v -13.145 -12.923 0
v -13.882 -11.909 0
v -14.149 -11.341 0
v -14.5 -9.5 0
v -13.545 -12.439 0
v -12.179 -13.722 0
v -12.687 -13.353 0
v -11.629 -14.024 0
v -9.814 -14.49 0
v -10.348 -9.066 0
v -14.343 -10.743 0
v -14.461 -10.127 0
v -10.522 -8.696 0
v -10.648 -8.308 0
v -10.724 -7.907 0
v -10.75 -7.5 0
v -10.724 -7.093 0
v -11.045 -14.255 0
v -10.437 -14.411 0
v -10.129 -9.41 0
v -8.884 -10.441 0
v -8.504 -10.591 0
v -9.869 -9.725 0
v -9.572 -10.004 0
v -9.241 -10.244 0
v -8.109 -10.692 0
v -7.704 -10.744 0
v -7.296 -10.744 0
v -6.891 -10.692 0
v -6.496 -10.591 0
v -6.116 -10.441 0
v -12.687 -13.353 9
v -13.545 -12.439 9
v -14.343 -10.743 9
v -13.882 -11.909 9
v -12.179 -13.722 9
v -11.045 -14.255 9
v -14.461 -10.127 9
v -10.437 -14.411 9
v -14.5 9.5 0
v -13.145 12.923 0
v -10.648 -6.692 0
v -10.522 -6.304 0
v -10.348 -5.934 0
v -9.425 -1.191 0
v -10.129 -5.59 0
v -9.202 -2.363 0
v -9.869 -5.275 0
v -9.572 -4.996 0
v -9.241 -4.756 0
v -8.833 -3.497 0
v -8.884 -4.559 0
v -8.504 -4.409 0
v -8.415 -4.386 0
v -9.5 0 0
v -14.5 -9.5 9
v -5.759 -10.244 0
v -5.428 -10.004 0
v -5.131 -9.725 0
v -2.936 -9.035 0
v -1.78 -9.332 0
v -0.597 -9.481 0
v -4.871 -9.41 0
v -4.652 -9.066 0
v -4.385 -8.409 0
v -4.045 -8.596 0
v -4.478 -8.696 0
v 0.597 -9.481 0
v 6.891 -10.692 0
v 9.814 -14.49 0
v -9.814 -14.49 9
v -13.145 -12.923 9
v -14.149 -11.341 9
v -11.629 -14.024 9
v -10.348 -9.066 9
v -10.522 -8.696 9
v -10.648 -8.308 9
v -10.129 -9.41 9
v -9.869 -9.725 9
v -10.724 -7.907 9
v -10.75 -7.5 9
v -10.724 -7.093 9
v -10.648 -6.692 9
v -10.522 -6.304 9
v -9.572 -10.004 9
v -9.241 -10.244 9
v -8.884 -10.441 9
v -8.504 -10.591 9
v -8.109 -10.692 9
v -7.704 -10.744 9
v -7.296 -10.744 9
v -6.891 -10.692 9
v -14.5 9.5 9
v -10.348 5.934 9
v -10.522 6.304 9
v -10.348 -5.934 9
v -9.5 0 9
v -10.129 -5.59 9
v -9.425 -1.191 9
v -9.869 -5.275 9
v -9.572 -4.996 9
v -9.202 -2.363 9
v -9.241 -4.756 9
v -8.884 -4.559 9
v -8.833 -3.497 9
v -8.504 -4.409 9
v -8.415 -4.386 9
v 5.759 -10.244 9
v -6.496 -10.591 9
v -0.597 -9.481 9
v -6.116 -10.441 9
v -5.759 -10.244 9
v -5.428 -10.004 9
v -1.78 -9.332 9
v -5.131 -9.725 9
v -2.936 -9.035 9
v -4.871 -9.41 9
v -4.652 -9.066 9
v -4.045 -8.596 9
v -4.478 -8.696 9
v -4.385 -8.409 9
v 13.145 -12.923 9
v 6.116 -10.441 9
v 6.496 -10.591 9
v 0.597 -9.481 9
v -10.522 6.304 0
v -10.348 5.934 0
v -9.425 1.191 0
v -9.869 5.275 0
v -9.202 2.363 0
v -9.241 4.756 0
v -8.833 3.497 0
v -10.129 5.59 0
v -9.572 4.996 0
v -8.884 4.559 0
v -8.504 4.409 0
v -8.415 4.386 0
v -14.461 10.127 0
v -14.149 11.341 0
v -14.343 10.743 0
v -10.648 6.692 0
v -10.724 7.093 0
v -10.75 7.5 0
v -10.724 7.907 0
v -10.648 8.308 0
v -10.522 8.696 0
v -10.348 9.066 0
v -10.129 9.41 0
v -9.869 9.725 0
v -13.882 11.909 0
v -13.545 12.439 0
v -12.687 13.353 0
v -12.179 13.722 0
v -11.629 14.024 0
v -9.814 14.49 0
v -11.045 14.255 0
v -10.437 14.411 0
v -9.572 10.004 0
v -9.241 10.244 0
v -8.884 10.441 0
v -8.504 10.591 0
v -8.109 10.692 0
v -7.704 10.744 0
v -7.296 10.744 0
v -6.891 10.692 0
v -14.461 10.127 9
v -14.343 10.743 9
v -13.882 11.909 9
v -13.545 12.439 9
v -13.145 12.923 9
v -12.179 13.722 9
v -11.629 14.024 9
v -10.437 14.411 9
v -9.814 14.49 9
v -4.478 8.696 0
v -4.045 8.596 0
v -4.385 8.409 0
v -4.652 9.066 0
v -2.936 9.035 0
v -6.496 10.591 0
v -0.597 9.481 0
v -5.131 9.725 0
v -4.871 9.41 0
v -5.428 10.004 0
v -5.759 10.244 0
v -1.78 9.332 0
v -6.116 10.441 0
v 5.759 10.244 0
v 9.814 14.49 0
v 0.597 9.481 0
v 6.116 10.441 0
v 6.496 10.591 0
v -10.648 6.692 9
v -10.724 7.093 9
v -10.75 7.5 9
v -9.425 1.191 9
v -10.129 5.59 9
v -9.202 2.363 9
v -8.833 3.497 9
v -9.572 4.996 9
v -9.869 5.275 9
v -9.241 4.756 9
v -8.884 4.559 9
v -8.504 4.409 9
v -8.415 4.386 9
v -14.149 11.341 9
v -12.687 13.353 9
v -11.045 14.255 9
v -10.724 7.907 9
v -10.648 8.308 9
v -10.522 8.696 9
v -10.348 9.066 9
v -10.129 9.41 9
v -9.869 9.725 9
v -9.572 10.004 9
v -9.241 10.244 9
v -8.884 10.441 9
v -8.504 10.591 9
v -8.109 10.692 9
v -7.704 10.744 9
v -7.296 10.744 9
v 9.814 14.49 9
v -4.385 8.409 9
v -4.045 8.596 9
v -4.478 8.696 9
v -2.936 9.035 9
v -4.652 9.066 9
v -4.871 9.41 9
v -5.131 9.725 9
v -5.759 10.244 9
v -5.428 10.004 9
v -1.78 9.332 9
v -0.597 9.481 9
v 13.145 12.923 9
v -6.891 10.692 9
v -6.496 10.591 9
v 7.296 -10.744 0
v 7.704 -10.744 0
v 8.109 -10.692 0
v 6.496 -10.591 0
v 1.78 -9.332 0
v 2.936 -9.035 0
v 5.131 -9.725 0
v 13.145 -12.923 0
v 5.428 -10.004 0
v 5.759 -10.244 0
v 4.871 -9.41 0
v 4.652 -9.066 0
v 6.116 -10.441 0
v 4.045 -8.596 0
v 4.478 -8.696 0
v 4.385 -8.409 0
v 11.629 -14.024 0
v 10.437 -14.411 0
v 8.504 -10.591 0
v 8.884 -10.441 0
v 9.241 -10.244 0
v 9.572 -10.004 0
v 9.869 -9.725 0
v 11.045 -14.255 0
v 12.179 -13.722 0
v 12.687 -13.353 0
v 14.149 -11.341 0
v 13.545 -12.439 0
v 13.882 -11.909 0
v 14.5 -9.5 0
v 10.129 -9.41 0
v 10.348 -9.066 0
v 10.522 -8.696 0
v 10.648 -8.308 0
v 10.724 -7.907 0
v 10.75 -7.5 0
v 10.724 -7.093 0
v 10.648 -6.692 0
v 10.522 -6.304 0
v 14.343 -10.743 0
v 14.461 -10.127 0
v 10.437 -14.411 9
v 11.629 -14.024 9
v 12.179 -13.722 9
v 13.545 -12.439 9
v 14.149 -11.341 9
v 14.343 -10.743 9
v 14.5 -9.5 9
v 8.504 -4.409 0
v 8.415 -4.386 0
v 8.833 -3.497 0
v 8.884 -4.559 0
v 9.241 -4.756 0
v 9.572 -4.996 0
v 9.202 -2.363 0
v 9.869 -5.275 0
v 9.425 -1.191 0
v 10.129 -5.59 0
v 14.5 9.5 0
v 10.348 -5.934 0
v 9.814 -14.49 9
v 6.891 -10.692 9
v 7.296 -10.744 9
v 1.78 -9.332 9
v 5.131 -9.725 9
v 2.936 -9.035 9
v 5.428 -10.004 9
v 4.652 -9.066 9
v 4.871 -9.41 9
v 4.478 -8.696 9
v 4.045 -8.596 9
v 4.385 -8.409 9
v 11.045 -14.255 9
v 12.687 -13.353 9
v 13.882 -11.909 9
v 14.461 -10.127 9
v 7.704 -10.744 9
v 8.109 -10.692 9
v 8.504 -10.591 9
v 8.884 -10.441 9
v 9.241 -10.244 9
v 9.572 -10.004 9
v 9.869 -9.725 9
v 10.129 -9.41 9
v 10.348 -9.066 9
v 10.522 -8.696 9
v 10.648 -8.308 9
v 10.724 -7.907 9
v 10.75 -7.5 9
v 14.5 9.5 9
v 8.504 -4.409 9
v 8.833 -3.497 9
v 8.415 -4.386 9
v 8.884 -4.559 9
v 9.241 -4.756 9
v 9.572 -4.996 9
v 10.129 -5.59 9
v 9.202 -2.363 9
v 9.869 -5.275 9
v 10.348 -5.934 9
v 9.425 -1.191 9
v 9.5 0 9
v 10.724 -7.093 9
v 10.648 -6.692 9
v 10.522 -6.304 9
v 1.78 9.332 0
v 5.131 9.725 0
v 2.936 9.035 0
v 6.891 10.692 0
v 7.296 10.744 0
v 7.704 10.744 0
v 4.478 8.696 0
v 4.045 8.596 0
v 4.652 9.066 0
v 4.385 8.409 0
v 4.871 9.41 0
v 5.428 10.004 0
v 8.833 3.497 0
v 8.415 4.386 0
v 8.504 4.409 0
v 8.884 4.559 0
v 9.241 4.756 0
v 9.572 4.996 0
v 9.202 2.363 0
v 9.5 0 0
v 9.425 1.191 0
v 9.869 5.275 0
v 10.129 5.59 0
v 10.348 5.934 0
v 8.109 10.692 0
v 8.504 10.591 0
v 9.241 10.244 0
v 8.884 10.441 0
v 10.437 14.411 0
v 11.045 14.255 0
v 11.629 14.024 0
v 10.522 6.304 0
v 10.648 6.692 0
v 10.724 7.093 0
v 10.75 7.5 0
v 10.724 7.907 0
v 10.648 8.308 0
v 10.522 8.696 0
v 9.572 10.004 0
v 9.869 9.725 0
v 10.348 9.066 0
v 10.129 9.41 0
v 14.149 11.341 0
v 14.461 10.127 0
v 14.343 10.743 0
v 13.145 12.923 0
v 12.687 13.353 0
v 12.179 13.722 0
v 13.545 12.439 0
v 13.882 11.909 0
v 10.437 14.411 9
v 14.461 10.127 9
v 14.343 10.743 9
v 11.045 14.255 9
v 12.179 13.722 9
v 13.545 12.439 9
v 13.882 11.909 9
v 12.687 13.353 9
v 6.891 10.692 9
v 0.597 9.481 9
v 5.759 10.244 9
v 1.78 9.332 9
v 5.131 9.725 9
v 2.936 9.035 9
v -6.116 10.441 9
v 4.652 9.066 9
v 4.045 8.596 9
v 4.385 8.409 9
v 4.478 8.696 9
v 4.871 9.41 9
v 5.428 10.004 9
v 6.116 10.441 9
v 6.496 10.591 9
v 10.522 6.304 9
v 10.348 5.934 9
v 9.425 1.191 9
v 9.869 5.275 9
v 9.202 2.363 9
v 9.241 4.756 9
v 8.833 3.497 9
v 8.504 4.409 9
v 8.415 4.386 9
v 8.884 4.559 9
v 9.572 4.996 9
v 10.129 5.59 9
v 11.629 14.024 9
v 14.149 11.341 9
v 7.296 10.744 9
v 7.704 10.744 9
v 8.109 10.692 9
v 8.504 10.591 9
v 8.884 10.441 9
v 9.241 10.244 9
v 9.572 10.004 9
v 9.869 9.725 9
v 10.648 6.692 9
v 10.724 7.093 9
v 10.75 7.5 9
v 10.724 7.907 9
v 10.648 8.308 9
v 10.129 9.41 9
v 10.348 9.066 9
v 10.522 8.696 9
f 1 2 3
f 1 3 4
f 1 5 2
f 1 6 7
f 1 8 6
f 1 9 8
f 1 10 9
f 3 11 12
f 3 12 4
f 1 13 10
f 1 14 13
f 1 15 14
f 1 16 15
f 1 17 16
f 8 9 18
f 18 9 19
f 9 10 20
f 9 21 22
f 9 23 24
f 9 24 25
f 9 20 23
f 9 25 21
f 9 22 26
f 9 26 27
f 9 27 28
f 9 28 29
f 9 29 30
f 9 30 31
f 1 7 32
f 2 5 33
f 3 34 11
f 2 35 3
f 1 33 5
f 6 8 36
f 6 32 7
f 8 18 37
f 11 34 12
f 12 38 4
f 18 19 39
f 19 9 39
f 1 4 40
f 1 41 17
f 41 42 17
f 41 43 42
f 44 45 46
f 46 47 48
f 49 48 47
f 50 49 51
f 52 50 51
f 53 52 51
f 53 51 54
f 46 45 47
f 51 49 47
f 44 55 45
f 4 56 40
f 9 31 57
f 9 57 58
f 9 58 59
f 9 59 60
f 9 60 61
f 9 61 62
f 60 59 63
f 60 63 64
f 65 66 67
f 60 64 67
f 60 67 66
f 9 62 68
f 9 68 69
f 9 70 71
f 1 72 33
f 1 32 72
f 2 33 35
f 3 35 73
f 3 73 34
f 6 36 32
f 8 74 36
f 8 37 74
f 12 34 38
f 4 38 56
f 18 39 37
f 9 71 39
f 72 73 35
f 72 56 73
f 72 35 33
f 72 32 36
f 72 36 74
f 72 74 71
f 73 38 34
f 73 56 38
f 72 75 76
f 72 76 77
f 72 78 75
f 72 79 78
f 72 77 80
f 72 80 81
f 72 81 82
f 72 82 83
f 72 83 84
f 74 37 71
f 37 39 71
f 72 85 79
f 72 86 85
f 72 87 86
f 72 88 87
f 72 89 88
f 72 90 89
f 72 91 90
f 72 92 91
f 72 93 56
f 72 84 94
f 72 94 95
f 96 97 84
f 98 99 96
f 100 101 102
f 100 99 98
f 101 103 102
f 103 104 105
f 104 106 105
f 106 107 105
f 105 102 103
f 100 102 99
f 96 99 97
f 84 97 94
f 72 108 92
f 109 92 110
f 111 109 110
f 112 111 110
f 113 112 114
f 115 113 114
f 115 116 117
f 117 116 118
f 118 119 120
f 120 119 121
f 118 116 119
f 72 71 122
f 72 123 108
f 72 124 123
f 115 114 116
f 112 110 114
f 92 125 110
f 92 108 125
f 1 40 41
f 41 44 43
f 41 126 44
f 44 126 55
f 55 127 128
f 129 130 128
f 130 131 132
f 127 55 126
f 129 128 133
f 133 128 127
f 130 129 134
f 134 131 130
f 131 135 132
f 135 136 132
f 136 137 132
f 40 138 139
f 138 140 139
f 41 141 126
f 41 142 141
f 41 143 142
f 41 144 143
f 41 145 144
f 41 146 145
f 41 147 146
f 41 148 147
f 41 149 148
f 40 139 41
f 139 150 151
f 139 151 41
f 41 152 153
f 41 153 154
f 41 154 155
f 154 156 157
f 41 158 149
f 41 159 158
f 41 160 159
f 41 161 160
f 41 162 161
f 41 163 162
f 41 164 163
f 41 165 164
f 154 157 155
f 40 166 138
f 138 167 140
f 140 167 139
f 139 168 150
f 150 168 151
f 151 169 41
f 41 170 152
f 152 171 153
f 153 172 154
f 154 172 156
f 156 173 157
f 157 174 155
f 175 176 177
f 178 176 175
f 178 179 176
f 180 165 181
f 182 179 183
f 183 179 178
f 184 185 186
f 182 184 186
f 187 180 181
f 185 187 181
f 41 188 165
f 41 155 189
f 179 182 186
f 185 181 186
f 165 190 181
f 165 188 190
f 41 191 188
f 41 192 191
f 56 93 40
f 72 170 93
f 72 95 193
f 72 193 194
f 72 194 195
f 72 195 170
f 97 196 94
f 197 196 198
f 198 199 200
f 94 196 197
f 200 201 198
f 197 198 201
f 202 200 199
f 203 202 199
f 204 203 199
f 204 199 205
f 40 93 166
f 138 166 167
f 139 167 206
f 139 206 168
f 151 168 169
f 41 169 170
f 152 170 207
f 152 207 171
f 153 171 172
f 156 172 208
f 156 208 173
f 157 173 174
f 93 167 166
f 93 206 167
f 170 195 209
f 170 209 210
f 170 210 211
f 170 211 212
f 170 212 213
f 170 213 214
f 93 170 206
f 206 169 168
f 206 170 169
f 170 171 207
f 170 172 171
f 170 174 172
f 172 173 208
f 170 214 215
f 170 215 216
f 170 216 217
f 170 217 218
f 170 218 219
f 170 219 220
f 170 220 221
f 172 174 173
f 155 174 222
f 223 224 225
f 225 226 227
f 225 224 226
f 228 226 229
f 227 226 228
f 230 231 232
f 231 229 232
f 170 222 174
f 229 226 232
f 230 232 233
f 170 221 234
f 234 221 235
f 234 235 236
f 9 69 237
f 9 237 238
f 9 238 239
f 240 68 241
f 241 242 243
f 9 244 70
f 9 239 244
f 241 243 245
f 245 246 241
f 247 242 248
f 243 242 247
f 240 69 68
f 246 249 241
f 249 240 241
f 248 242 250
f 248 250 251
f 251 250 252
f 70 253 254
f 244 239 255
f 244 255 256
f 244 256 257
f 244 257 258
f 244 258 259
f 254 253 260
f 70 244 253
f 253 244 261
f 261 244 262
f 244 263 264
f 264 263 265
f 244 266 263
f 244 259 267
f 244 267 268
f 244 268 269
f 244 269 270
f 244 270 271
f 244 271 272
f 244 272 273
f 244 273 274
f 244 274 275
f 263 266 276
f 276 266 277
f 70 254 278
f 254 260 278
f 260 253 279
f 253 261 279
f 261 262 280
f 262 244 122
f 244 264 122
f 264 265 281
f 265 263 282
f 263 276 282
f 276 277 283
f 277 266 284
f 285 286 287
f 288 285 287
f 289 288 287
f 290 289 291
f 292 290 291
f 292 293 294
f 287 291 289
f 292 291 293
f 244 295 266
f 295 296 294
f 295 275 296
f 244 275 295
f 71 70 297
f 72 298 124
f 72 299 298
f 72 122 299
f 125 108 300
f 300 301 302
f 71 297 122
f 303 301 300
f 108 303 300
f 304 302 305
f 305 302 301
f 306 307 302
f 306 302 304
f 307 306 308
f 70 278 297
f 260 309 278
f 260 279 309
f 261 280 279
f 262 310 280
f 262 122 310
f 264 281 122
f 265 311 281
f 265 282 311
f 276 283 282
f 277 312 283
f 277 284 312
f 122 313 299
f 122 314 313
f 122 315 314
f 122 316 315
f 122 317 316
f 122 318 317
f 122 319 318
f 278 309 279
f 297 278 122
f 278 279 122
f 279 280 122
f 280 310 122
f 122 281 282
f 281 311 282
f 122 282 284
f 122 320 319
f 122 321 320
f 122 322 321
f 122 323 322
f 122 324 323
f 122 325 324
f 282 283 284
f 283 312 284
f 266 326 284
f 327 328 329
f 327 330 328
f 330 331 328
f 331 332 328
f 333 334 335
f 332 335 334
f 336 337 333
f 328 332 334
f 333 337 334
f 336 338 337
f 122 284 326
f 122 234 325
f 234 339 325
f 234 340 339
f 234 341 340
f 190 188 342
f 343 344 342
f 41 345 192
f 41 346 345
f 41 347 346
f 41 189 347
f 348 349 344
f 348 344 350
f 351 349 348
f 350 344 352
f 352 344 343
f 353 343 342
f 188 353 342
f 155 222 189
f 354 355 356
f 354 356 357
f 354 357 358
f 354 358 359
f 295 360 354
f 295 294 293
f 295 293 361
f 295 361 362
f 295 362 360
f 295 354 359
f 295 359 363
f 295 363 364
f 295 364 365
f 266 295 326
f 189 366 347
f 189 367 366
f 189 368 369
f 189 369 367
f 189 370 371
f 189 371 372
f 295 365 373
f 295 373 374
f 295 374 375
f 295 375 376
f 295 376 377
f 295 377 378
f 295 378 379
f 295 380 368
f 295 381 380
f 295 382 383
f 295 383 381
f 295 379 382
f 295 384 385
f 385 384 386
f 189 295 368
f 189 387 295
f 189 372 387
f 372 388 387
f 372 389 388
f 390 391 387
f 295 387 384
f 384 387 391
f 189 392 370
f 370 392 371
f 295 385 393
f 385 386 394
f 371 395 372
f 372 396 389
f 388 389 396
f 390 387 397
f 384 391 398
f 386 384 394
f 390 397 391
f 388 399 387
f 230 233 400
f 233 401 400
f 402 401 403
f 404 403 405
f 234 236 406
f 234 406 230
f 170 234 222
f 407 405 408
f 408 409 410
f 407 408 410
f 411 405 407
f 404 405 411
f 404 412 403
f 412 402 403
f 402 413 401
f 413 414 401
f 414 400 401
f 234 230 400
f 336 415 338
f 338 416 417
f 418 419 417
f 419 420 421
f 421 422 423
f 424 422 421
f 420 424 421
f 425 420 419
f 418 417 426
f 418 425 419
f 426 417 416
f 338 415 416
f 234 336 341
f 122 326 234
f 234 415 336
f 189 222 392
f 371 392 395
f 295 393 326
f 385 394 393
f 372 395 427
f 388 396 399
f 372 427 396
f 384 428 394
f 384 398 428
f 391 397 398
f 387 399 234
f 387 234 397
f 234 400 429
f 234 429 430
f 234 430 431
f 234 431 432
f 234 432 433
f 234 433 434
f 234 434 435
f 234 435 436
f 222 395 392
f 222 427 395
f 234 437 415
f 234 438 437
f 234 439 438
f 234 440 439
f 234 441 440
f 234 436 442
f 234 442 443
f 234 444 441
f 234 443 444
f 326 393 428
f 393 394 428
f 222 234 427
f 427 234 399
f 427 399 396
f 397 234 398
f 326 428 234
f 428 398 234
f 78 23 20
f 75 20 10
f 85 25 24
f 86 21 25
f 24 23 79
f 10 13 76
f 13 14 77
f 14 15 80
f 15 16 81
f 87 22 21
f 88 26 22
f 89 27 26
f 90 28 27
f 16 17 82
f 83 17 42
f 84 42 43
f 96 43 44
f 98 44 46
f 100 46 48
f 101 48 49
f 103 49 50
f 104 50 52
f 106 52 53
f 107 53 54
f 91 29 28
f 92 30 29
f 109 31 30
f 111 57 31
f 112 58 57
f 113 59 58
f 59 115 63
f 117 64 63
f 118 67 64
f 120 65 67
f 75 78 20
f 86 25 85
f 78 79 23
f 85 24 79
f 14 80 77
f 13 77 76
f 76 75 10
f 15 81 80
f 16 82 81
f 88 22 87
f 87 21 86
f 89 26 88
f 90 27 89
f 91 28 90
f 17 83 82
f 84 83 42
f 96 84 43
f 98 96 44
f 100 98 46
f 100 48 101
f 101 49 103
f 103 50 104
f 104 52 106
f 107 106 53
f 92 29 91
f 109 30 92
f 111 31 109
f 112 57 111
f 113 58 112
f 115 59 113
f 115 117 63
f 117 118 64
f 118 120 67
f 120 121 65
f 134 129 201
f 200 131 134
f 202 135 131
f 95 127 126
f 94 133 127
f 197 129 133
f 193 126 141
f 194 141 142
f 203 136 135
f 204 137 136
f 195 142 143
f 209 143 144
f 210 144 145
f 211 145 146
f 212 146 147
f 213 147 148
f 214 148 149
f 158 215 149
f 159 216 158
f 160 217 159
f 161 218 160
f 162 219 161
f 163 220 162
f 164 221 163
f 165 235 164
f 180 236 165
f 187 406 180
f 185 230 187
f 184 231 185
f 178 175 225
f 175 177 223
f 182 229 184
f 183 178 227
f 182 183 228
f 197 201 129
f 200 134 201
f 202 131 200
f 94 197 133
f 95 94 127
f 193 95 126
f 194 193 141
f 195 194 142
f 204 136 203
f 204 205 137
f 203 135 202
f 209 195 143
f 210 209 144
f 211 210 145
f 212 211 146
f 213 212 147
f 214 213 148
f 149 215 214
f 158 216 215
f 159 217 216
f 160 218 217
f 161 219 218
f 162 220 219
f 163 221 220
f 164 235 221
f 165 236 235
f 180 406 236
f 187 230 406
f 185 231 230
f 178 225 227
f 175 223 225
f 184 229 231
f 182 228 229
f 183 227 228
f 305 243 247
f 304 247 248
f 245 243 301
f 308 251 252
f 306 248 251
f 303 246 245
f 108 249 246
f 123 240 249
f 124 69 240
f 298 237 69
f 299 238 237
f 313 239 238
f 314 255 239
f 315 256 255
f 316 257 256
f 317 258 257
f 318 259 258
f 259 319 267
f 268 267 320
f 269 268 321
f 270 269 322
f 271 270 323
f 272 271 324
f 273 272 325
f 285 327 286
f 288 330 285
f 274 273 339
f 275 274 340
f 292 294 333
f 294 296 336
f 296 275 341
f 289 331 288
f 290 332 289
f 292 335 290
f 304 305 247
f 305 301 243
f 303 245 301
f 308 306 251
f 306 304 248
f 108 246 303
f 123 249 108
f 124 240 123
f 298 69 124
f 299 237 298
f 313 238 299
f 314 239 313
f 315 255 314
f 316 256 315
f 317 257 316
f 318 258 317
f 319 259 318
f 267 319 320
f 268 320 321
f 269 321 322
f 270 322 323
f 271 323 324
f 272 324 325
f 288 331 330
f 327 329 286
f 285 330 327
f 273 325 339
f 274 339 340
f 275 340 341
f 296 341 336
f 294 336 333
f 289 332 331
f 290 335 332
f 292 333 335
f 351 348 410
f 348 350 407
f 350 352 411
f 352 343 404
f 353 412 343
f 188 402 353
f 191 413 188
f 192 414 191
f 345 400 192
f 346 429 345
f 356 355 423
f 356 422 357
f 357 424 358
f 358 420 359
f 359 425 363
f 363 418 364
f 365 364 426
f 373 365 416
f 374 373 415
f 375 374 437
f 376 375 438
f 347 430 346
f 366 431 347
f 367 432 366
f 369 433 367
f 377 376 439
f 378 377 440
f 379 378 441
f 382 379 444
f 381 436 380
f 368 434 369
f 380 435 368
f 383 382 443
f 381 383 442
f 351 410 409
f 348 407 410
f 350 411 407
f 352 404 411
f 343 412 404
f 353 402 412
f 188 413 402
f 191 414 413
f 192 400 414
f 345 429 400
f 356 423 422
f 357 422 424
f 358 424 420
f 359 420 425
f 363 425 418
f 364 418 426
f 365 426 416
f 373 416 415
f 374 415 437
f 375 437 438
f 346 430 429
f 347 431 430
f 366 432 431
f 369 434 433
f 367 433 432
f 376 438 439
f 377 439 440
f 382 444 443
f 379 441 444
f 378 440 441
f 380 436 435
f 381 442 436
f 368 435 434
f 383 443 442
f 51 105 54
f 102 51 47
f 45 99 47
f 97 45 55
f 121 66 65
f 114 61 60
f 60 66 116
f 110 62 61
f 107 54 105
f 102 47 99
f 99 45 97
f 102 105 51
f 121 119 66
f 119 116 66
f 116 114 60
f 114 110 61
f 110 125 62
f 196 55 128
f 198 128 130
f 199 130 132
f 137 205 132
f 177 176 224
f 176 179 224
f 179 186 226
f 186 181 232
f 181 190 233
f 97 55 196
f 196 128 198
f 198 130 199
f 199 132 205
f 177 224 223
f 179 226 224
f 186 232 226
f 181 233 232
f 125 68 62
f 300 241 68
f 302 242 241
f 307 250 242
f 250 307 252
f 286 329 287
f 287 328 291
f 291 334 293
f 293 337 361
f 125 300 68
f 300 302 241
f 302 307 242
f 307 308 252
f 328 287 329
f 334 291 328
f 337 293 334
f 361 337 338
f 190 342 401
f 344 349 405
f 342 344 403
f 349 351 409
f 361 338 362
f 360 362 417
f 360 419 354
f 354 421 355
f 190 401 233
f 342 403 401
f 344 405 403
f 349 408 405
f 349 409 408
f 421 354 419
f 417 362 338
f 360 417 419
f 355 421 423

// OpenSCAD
$fn = 50;

difference() {
	union() {
		hull() {
			translate(v = [-9.5, 9.5, 0]) {
				cylinder(h = 9, r = 5);
			}
			translate(v = [9.5, 9.5, 0]) {
				cylinder(h = 9, r = 5);
			}
			translate(v = [-9.5, -9.5, 0]) {
				cylinder(h = 9, r = 5);
			}
			translate(v = [9.5, -9.5, 0]) {
				cylinder(h = 9, r = 5);
			}
		}
	}
	union() {
		translate(v = [-7.5, -7.5, -100.0]) {
			cylinder(h = 200, r = 3.25);
		}
		translate(v = [-7.5, 7.5, -100.0]) {
			cylinder(h = 200, r = 3.25);
		}
		translate(v = [7.5, -7.5, -100.0]) {
			cylinder(h = 200, r = 3.25);
		}
		translate(v = [7.5, 7.5, -100.0]) {
			cylinder(h = 200, r = 3.25);
		}
		translate(v = [-7.5, -7.5, -100.0]) {
			cylinder(h = 200, r = 1.8);
		}
		translate(v = [-7.5, 7.5, -100.0]) {
			cylinder(h = 200, r = 1.8);
		}
		translate(v = [7.5, -7.5, -100.0]) {
			cylinder(h = 200, r = 1.8);
		}
		translate(v = [7.5, 7.5, -100.0]) {
			cylinder(h = 200, r = 1.8);
		}
		cylinder(h = 9, r = 9.5);
	}
}
